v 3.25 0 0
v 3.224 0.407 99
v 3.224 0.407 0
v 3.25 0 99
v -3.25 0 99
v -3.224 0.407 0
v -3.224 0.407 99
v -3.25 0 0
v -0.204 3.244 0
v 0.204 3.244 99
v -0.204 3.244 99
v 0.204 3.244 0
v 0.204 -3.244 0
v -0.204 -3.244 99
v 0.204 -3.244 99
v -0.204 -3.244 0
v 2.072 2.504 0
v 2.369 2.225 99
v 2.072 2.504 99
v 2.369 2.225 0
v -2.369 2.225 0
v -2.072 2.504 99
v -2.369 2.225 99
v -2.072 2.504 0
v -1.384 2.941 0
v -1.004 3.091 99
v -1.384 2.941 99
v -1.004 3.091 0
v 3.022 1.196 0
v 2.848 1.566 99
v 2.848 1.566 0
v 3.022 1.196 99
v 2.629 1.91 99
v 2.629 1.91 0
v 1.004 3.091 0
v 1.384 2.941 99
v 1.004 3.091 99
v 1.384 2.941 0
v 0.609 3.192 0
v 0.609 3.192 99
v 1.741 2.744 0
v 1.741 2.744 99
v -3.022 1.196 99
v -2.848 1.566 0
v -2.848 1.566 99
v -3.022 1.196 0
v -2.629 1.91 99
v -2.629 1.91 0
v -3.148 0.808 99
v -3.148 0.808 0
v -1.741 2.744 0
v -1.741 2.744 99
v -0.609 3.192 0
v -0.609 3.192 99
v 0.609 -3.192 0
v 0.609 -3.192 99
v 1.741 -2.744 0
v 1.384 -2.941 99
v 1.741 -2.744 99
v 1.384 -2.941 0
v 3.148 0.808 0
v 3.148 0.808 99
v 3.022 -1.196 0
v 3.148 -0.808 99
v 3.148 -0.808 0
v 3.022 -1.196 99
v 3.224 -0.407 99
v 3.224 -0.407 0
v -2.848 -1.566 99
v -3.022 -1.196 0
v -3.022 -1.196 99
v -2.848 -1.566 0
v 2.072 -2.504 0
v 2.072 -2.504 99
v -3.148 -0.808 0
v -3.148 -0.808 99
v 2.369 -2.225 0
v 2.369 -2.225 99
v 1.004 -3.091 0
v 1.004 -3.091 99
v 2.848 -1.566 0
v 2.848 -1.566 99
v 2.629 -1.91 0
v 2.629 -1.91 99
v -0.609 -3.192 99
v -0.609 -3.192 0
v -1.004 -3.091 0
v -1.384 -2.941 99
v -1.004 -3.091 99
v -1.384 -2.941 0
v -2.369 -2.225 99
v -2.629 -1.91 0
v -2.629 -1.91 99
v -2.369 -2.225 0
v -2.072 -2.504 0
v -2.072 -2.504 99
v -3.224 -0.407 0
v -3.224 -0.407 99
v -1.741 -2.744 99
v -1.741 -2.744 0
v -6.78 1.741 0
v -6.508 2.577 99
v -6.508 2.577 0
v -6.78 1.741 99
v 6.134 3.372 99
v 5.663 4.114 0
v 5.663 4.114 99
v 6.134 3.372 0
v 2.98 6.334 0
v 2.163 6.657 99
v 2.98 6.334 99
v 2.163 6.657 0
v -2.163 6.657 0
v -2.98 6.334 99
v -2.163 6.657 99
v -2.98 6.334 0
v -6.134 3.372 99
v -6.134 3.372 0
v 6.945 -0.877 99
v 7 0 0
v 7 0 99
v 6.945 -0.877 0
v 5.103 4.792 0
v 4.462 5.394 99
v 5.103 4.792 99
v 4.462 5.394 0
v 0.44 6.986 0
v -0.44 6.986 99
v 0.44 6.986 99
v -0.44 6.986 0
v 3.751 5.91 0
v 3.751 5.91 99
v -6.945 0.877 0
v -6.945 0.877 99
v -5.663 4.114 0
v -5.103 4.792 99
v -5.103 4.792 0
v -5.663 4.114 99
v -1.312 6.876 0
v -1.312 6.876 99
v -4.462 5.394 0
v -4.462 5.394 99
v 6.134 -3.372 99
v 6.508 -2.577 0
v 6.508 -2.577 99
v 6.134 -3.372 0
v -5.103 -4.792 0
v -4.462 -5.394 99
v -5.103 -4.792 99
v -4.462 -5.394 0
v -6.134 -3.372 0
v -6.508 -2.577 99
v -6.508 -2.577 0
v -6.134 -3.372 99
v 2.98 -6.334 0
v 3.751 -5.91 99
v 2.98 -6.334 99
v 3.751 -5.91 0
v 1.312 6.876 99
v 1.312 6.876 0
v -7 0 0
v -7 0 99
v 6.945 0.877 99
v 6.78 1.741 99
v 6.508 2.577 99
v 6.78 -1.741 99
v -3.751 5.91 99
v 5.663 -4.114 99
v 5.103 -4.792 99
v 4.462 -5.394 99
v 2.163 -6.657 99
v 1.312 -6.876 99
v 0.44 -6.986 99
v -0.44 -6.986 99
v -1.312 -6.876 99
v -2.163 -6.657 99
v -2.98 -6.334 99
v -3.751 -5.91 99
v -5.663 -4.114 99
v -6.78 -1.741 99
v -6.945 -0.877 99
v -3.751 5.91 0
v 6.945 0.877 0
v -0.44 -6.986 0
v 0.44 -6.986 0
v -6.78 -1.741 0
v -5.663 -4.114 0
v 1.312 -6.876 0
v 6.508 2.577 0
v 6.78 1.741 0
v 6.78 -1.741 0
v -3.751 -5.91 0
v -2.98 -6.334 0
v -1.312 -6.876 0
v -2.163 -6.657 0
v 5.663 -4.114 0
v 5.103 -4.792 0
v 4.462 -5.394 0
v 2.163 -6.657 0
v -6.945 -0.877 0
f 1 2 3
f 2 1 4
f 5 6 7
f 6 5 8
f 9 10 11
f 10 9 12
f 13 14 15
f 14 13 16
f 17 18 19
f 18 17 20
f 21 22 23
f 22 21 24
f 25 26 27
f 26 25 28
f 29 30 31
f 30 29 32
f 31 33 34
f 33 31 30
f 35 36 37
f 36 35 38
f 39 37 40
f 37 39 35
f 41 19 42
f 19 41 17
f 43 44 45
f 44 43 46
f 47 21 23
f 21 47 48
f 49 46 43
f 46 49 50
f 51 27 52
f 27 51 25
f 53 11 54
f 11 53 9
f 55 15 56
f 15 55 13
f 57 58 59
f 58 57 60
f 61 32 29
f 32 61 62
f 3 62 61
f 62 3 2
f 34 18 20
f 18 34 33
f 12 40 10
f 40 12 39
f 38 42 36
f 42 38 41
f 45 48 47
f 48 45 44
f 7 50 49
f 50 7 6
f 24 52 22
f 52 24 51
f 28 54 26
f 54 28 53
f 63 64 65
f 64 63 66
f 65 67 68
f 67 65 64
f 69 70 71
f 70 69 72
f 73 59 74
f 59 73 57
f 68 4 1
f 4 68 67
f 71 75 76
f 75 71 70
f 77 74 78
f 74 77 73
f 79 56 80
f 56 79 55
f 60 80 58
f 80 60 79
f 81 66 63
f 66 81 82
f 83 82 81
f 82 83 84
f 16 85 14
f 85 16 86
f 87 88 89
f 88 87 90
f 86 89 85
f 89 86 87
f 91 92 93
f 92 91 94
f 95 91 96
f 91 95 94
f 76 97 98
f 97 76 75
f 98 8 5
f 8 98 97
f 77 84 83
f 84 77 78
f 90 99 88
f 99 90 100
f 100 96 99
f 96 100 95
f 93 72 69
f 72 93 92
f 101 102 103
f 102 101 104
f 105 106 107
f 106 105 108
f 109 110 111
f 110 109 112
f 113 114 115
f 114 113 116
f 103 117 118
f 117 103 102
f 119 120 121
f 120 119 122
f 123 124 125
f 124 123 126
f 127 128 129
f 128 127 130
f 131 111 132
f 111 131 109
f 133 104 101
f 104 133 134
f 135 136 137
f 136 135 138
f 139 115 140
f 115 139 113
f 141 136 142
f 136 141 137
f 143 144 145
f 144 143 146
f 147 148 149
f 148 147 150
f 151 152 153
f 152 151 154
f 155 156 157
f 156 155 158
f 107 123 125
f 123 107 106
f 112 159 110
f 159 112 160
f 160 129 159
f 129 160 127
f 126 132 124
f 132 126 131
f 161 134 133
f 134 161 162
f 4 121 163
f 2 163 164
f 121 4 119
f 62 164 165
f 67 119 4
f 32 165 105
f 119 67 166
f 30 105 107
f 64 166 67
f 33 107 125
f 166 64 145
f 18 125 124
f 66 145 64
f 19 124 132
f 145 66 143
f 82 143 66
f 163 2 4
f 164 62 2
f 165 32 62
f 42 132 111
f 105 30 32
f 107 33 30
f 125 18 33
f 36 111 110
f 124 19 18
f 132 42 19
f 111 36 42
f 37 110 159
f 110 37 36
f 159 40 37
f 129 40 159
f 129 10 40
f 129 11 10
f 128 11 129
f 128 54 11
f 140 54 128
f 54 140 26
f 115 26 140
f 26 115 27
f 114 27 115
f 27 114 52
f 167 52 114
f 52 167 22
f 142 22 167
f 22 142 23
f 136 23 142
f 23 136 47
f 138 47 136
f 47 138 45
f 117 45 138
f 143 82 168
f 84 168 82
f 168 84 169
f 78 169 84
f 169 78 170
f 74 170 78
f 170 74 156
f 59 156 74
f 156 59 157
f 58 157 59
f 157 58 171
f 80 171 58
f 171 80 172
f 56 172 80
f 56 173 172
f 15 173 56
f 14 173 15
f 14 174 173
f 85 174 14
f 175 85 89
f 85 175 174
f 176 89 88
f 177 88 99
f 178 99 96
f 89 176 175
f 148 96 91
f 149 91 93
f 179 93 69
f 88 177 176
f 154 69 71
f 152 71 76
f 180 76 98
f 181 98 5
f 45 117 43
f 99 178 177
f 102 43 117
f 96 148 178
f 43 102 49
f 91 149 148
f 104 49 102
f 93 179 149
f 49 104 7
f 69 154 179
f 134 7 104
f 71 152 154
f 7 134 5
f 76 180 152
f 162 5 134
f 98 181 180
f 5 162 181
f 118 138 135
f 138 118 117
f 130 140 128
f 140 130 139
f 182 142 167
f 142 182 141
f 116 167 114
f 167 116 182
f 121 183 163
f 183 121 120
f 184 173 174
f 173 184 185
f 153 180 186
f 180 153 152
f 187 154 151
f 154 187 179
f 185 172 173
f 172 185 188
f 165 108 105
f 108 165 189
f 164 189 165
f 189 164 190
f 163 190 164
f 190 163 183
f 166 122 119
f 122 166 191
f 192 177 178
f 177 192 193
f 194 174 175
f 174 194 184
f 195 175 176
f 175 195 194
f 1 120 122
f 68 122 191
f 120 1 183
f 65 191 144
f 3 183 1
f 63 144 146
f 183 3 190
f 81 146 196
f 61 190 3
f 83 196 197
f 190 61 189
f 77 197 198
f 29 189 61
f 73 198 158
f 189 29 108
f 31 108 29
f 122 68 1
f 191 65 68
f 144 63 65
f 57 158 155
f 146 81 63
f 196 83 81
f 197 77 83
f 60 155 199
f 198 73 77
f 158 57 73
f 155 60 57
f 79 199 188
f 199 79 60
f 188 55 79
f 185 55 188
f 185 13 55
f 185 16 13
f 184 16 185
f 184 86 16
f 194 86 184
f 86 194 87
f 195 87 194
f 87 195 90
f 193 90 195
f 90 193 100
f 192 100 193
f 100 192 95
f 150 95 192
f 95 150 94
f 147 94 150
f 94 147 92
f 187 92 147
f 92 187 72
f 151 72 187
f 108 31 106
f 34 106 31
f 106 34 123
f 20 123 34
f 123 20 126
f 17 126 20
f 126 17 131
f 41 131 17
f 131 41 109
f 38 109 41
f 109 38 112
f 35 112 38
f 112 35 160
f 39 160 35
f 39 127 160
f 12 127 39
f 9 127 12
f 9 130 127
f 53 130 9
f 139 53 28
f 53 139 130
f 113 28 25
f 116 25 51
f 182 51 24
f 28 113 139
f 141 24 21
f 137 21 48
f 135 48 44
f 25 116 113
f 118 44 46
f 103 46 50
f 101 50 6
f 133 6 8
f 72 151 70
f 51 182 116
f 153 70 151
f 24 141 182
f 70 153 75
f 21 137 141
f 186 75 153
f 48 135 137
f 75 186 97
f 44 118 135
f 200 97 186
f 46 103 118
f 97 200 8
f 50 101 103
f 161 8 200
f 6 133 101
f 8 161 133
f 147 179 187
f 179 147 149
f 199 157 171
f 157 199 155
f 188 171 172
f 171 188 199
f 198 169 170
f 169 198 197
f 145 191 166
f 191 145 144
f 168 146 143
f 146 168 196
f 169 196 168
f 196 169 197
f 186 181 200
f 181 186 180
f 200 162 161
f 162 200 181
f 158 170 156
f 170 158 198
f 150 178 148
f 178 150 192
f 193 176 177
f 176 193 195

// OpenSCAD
$fn = 50;


difference() {
	union() {
		cylinder(h = 99, r = 7.0000000000);
	}
	union() {
		translate(v = [0, 0, -100]) {
			cylinder(h = 200, r = 3.2500000000);
		}
		translate(v = [0, 0, -100]) {
			cylinder(h = 200, r = 1.8000000000);
		}
	}
}
